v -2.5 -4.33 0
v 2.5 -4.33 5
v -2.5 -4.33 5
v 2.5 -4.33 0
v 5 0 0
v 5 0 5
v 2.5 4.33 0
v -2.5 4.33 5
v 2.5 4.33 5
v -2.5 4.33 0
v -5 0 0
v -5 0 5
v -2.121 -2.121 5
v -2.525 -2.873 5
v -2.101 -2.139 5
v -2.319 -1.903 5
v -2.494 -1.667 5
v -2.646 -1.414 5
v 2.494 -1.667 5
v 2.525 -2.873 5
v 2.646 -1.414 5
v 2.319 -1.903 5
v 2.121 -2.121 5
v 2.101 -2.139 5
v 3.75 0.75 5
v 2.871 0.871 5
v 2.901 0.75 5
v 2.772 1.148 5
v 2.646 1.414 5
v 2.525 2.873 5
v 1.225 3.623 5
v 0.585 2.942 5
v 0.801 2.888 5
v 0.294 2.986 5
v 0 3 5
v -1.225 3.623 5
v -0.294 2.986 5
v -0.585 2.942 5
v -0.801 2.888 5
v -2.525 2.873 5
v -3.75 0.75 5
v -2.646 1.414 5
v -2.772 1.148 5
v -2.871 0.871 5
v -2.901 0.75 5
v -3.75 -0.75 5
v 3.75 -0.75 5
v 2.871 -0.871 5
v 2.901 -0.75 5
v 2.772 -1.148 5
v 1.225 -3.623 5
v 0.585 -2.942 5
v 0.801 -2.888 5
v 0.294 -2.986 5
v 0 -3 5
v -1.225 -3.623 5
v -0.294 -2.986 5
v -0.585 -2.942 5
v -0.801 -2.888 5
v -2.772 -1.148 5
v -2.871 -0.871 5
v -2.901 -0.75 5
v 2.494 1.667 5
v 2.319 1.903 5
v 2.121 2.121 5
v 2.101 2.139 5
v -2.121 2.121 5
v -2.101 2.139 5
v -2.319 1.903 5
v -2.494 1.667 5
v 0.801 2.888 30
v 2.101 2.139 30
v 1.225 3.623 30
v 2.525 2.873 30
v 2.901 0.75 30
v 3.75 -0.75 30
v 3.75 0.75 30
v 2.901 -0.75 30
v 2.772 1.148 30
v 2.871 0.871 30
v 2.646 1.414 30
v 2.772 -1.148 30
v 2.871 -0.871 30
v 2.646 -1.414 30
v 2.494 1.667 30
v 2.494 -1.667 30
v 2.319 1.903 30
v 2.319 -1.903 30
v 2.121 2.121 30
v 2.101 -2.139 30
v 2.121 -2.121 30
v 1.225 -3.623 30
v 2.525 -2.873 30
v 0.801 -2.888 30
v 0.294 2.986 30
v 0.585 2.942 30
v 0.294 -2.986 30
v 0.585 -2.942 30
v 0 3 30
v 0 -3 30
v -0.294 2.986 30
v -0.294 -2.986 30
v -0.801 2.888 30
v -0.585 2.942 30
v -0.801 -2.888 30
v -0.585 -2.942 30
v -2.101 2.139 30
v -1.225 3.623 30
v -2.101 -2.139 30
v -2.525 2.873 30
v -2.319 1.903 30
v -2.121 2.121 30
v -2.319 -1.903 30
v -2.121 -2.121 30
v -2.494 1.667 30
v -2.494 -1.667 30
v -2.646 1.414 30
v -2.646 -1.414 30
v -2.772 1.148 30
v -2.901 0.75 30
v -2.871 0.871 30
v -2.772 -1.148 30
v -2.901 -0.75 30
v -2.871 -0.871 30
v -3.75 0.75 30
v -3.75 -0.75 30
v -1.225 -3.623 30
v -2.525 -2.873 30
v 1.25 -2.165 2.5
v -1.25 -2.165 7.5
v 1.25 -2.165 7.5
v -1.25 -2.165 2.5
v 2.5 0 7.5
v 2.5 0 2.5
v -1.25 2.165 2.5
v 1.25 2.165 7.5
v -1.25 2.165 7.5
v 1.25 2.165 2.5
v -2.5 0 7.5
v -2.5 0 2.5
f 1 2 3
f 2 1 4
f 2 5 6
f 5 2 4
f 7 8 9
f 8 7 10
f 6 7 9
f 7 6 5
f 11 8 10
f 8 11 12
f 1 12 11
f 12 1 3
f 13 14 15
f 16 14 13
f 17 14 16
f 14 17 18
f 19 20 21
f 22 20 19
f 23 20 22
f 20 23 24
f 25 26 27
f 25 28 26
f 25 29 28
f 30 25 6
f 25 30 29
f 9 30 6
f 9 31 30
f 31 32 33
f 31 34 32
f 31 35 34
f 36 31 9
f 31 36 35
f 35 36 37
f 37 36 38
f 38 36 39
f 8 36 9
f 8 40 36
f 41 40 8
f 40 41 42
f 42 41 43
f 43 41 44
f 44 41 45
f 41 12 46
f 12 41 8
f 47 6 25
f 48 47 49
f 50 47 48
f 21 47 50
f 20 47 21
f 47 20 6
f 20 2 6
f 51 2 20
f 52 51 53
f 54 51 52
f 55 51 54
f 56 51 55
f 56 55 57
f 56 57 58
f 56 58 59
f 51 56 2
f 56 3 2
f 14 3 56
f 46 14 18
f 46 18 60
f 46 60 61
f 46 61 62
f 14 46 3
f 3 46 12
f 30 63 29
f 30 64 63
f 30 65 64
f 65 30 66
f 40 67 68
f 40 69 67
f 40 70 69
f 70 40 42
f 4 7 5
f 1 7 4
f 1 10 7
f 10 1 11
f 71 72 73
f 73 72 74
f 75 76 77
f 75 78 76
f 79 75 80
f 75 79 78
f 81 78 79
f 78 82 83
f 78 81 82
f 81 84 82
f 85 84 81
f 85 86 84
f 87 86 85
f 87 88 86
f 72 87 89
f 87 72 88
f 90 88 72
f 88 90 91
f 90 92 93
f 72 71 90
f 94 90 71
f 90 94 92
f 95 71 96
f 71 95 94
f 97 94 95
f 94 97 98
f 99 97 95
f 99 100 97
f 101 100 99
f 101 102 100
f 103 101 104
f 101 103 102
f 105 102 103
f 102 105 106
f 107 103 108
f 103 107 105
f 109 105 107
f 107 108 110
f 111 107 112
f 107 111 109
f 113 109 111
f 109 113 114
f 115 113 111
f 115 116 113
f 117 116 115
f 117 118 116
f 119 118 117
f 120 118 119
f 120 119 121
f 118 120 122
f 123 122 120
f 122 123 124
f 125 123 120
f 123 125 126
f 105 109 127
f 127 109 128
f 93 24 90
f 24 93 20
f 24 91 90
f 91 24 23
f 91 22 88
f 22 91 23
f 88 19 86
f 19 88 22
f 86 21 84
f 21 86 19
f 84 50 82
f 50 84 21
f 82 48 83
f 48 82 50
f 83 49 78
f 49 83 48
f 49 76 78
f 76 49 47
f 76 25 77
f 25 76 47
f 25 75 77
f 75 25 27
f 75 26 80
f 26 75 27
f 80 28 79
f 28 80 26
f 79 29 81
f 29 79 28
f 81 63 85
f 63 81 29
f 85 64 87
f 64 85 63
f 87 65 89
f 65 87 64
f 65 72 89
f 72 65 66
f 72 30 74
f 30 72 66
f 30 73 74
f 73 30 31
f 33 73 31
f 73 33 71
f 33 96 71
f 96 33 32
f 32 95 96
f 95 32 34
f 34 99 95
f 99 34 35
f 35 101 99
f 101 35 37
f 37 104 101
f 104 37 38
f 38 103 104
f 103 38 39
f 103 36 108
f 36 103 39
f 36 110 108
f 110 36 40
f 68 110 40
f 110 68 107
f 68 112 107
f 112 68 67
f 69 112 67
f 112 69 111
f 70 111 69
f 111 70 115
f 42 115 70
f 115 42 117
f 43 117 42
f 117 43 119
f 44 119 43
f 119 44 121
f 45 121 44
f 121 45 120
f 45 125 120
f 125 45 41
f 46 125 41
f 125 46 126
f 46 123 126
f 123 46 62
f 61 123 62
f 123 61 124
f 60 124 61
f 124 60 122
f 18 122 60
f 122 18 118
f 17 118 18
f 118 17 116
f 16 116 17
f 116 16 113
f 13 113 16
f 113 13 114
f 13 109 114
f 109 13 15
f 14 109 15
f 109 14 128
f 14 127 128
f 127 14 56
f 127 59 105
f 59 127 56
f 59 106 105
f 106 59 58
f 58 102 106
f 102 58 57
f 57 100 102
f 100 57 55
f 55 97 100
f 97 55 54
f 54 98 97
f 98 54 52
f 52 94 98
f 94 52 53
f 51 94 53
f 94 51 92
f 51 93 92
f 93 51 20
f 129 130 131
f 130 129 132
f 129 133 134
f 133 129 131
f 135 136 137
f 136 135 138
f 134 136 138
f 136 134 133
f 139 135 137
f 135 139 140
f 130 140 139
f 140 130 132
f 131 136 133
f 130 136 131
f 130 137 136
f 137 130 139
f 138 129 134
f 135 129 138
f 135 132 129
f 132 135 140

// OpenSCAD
// Dimensions in mm
bolt_diameter = 6; // M6 bolt diameter
bolt_length = 30; // Length of the bolt
thread_pitch = 1; // Pitch of M6 thread
thread_height = 1.5; // Height of thread
head_diameter = 10; // Diameter of the bolt head
head_height = 5; // Height of the bolt head
$fn=64; // Quality of circles and cylinders

// Bolt head
module bolt_head(d, h) {
  cylinder(d=d, h=h, $fn=6); // Hexagonal head
}

// Bolt shank with threads
module bolt_shank(d, h, pitch, thread_h) {
  // 2D tooth profile cross-section for threads
  module tooth_profile(r, tooth_h) {
    circle(r=r);
    for (i = [0:5]) {
      rotate(i * 60) translate([r, 0])
        polygon([[-thread_h/2,-thread_h/2],[thread_h/2,-thread_h/2],[thread_h/2,thread_h/2],[-thread_h/2,thread_h/2]]);
    }
  }
  // Extrude to full 3D threads
  linear_extrude(height=h) tooth_profile(d/2, thread_h);
}

// Main bolt assembly
difference() {
  union() {
    bolt_head(head_diameter, head_height);
    translate([0, 0, head_height]) bolt_shank(bolt_diameter, bolt_length - head_height, thread_pitch, thread_height);
  }
  // Central hole for the screwdriver
  translate([0, 0, head_height/2]) cylinder(d=bolt_diameter - 1, h=head_height, $fn=6);
}
